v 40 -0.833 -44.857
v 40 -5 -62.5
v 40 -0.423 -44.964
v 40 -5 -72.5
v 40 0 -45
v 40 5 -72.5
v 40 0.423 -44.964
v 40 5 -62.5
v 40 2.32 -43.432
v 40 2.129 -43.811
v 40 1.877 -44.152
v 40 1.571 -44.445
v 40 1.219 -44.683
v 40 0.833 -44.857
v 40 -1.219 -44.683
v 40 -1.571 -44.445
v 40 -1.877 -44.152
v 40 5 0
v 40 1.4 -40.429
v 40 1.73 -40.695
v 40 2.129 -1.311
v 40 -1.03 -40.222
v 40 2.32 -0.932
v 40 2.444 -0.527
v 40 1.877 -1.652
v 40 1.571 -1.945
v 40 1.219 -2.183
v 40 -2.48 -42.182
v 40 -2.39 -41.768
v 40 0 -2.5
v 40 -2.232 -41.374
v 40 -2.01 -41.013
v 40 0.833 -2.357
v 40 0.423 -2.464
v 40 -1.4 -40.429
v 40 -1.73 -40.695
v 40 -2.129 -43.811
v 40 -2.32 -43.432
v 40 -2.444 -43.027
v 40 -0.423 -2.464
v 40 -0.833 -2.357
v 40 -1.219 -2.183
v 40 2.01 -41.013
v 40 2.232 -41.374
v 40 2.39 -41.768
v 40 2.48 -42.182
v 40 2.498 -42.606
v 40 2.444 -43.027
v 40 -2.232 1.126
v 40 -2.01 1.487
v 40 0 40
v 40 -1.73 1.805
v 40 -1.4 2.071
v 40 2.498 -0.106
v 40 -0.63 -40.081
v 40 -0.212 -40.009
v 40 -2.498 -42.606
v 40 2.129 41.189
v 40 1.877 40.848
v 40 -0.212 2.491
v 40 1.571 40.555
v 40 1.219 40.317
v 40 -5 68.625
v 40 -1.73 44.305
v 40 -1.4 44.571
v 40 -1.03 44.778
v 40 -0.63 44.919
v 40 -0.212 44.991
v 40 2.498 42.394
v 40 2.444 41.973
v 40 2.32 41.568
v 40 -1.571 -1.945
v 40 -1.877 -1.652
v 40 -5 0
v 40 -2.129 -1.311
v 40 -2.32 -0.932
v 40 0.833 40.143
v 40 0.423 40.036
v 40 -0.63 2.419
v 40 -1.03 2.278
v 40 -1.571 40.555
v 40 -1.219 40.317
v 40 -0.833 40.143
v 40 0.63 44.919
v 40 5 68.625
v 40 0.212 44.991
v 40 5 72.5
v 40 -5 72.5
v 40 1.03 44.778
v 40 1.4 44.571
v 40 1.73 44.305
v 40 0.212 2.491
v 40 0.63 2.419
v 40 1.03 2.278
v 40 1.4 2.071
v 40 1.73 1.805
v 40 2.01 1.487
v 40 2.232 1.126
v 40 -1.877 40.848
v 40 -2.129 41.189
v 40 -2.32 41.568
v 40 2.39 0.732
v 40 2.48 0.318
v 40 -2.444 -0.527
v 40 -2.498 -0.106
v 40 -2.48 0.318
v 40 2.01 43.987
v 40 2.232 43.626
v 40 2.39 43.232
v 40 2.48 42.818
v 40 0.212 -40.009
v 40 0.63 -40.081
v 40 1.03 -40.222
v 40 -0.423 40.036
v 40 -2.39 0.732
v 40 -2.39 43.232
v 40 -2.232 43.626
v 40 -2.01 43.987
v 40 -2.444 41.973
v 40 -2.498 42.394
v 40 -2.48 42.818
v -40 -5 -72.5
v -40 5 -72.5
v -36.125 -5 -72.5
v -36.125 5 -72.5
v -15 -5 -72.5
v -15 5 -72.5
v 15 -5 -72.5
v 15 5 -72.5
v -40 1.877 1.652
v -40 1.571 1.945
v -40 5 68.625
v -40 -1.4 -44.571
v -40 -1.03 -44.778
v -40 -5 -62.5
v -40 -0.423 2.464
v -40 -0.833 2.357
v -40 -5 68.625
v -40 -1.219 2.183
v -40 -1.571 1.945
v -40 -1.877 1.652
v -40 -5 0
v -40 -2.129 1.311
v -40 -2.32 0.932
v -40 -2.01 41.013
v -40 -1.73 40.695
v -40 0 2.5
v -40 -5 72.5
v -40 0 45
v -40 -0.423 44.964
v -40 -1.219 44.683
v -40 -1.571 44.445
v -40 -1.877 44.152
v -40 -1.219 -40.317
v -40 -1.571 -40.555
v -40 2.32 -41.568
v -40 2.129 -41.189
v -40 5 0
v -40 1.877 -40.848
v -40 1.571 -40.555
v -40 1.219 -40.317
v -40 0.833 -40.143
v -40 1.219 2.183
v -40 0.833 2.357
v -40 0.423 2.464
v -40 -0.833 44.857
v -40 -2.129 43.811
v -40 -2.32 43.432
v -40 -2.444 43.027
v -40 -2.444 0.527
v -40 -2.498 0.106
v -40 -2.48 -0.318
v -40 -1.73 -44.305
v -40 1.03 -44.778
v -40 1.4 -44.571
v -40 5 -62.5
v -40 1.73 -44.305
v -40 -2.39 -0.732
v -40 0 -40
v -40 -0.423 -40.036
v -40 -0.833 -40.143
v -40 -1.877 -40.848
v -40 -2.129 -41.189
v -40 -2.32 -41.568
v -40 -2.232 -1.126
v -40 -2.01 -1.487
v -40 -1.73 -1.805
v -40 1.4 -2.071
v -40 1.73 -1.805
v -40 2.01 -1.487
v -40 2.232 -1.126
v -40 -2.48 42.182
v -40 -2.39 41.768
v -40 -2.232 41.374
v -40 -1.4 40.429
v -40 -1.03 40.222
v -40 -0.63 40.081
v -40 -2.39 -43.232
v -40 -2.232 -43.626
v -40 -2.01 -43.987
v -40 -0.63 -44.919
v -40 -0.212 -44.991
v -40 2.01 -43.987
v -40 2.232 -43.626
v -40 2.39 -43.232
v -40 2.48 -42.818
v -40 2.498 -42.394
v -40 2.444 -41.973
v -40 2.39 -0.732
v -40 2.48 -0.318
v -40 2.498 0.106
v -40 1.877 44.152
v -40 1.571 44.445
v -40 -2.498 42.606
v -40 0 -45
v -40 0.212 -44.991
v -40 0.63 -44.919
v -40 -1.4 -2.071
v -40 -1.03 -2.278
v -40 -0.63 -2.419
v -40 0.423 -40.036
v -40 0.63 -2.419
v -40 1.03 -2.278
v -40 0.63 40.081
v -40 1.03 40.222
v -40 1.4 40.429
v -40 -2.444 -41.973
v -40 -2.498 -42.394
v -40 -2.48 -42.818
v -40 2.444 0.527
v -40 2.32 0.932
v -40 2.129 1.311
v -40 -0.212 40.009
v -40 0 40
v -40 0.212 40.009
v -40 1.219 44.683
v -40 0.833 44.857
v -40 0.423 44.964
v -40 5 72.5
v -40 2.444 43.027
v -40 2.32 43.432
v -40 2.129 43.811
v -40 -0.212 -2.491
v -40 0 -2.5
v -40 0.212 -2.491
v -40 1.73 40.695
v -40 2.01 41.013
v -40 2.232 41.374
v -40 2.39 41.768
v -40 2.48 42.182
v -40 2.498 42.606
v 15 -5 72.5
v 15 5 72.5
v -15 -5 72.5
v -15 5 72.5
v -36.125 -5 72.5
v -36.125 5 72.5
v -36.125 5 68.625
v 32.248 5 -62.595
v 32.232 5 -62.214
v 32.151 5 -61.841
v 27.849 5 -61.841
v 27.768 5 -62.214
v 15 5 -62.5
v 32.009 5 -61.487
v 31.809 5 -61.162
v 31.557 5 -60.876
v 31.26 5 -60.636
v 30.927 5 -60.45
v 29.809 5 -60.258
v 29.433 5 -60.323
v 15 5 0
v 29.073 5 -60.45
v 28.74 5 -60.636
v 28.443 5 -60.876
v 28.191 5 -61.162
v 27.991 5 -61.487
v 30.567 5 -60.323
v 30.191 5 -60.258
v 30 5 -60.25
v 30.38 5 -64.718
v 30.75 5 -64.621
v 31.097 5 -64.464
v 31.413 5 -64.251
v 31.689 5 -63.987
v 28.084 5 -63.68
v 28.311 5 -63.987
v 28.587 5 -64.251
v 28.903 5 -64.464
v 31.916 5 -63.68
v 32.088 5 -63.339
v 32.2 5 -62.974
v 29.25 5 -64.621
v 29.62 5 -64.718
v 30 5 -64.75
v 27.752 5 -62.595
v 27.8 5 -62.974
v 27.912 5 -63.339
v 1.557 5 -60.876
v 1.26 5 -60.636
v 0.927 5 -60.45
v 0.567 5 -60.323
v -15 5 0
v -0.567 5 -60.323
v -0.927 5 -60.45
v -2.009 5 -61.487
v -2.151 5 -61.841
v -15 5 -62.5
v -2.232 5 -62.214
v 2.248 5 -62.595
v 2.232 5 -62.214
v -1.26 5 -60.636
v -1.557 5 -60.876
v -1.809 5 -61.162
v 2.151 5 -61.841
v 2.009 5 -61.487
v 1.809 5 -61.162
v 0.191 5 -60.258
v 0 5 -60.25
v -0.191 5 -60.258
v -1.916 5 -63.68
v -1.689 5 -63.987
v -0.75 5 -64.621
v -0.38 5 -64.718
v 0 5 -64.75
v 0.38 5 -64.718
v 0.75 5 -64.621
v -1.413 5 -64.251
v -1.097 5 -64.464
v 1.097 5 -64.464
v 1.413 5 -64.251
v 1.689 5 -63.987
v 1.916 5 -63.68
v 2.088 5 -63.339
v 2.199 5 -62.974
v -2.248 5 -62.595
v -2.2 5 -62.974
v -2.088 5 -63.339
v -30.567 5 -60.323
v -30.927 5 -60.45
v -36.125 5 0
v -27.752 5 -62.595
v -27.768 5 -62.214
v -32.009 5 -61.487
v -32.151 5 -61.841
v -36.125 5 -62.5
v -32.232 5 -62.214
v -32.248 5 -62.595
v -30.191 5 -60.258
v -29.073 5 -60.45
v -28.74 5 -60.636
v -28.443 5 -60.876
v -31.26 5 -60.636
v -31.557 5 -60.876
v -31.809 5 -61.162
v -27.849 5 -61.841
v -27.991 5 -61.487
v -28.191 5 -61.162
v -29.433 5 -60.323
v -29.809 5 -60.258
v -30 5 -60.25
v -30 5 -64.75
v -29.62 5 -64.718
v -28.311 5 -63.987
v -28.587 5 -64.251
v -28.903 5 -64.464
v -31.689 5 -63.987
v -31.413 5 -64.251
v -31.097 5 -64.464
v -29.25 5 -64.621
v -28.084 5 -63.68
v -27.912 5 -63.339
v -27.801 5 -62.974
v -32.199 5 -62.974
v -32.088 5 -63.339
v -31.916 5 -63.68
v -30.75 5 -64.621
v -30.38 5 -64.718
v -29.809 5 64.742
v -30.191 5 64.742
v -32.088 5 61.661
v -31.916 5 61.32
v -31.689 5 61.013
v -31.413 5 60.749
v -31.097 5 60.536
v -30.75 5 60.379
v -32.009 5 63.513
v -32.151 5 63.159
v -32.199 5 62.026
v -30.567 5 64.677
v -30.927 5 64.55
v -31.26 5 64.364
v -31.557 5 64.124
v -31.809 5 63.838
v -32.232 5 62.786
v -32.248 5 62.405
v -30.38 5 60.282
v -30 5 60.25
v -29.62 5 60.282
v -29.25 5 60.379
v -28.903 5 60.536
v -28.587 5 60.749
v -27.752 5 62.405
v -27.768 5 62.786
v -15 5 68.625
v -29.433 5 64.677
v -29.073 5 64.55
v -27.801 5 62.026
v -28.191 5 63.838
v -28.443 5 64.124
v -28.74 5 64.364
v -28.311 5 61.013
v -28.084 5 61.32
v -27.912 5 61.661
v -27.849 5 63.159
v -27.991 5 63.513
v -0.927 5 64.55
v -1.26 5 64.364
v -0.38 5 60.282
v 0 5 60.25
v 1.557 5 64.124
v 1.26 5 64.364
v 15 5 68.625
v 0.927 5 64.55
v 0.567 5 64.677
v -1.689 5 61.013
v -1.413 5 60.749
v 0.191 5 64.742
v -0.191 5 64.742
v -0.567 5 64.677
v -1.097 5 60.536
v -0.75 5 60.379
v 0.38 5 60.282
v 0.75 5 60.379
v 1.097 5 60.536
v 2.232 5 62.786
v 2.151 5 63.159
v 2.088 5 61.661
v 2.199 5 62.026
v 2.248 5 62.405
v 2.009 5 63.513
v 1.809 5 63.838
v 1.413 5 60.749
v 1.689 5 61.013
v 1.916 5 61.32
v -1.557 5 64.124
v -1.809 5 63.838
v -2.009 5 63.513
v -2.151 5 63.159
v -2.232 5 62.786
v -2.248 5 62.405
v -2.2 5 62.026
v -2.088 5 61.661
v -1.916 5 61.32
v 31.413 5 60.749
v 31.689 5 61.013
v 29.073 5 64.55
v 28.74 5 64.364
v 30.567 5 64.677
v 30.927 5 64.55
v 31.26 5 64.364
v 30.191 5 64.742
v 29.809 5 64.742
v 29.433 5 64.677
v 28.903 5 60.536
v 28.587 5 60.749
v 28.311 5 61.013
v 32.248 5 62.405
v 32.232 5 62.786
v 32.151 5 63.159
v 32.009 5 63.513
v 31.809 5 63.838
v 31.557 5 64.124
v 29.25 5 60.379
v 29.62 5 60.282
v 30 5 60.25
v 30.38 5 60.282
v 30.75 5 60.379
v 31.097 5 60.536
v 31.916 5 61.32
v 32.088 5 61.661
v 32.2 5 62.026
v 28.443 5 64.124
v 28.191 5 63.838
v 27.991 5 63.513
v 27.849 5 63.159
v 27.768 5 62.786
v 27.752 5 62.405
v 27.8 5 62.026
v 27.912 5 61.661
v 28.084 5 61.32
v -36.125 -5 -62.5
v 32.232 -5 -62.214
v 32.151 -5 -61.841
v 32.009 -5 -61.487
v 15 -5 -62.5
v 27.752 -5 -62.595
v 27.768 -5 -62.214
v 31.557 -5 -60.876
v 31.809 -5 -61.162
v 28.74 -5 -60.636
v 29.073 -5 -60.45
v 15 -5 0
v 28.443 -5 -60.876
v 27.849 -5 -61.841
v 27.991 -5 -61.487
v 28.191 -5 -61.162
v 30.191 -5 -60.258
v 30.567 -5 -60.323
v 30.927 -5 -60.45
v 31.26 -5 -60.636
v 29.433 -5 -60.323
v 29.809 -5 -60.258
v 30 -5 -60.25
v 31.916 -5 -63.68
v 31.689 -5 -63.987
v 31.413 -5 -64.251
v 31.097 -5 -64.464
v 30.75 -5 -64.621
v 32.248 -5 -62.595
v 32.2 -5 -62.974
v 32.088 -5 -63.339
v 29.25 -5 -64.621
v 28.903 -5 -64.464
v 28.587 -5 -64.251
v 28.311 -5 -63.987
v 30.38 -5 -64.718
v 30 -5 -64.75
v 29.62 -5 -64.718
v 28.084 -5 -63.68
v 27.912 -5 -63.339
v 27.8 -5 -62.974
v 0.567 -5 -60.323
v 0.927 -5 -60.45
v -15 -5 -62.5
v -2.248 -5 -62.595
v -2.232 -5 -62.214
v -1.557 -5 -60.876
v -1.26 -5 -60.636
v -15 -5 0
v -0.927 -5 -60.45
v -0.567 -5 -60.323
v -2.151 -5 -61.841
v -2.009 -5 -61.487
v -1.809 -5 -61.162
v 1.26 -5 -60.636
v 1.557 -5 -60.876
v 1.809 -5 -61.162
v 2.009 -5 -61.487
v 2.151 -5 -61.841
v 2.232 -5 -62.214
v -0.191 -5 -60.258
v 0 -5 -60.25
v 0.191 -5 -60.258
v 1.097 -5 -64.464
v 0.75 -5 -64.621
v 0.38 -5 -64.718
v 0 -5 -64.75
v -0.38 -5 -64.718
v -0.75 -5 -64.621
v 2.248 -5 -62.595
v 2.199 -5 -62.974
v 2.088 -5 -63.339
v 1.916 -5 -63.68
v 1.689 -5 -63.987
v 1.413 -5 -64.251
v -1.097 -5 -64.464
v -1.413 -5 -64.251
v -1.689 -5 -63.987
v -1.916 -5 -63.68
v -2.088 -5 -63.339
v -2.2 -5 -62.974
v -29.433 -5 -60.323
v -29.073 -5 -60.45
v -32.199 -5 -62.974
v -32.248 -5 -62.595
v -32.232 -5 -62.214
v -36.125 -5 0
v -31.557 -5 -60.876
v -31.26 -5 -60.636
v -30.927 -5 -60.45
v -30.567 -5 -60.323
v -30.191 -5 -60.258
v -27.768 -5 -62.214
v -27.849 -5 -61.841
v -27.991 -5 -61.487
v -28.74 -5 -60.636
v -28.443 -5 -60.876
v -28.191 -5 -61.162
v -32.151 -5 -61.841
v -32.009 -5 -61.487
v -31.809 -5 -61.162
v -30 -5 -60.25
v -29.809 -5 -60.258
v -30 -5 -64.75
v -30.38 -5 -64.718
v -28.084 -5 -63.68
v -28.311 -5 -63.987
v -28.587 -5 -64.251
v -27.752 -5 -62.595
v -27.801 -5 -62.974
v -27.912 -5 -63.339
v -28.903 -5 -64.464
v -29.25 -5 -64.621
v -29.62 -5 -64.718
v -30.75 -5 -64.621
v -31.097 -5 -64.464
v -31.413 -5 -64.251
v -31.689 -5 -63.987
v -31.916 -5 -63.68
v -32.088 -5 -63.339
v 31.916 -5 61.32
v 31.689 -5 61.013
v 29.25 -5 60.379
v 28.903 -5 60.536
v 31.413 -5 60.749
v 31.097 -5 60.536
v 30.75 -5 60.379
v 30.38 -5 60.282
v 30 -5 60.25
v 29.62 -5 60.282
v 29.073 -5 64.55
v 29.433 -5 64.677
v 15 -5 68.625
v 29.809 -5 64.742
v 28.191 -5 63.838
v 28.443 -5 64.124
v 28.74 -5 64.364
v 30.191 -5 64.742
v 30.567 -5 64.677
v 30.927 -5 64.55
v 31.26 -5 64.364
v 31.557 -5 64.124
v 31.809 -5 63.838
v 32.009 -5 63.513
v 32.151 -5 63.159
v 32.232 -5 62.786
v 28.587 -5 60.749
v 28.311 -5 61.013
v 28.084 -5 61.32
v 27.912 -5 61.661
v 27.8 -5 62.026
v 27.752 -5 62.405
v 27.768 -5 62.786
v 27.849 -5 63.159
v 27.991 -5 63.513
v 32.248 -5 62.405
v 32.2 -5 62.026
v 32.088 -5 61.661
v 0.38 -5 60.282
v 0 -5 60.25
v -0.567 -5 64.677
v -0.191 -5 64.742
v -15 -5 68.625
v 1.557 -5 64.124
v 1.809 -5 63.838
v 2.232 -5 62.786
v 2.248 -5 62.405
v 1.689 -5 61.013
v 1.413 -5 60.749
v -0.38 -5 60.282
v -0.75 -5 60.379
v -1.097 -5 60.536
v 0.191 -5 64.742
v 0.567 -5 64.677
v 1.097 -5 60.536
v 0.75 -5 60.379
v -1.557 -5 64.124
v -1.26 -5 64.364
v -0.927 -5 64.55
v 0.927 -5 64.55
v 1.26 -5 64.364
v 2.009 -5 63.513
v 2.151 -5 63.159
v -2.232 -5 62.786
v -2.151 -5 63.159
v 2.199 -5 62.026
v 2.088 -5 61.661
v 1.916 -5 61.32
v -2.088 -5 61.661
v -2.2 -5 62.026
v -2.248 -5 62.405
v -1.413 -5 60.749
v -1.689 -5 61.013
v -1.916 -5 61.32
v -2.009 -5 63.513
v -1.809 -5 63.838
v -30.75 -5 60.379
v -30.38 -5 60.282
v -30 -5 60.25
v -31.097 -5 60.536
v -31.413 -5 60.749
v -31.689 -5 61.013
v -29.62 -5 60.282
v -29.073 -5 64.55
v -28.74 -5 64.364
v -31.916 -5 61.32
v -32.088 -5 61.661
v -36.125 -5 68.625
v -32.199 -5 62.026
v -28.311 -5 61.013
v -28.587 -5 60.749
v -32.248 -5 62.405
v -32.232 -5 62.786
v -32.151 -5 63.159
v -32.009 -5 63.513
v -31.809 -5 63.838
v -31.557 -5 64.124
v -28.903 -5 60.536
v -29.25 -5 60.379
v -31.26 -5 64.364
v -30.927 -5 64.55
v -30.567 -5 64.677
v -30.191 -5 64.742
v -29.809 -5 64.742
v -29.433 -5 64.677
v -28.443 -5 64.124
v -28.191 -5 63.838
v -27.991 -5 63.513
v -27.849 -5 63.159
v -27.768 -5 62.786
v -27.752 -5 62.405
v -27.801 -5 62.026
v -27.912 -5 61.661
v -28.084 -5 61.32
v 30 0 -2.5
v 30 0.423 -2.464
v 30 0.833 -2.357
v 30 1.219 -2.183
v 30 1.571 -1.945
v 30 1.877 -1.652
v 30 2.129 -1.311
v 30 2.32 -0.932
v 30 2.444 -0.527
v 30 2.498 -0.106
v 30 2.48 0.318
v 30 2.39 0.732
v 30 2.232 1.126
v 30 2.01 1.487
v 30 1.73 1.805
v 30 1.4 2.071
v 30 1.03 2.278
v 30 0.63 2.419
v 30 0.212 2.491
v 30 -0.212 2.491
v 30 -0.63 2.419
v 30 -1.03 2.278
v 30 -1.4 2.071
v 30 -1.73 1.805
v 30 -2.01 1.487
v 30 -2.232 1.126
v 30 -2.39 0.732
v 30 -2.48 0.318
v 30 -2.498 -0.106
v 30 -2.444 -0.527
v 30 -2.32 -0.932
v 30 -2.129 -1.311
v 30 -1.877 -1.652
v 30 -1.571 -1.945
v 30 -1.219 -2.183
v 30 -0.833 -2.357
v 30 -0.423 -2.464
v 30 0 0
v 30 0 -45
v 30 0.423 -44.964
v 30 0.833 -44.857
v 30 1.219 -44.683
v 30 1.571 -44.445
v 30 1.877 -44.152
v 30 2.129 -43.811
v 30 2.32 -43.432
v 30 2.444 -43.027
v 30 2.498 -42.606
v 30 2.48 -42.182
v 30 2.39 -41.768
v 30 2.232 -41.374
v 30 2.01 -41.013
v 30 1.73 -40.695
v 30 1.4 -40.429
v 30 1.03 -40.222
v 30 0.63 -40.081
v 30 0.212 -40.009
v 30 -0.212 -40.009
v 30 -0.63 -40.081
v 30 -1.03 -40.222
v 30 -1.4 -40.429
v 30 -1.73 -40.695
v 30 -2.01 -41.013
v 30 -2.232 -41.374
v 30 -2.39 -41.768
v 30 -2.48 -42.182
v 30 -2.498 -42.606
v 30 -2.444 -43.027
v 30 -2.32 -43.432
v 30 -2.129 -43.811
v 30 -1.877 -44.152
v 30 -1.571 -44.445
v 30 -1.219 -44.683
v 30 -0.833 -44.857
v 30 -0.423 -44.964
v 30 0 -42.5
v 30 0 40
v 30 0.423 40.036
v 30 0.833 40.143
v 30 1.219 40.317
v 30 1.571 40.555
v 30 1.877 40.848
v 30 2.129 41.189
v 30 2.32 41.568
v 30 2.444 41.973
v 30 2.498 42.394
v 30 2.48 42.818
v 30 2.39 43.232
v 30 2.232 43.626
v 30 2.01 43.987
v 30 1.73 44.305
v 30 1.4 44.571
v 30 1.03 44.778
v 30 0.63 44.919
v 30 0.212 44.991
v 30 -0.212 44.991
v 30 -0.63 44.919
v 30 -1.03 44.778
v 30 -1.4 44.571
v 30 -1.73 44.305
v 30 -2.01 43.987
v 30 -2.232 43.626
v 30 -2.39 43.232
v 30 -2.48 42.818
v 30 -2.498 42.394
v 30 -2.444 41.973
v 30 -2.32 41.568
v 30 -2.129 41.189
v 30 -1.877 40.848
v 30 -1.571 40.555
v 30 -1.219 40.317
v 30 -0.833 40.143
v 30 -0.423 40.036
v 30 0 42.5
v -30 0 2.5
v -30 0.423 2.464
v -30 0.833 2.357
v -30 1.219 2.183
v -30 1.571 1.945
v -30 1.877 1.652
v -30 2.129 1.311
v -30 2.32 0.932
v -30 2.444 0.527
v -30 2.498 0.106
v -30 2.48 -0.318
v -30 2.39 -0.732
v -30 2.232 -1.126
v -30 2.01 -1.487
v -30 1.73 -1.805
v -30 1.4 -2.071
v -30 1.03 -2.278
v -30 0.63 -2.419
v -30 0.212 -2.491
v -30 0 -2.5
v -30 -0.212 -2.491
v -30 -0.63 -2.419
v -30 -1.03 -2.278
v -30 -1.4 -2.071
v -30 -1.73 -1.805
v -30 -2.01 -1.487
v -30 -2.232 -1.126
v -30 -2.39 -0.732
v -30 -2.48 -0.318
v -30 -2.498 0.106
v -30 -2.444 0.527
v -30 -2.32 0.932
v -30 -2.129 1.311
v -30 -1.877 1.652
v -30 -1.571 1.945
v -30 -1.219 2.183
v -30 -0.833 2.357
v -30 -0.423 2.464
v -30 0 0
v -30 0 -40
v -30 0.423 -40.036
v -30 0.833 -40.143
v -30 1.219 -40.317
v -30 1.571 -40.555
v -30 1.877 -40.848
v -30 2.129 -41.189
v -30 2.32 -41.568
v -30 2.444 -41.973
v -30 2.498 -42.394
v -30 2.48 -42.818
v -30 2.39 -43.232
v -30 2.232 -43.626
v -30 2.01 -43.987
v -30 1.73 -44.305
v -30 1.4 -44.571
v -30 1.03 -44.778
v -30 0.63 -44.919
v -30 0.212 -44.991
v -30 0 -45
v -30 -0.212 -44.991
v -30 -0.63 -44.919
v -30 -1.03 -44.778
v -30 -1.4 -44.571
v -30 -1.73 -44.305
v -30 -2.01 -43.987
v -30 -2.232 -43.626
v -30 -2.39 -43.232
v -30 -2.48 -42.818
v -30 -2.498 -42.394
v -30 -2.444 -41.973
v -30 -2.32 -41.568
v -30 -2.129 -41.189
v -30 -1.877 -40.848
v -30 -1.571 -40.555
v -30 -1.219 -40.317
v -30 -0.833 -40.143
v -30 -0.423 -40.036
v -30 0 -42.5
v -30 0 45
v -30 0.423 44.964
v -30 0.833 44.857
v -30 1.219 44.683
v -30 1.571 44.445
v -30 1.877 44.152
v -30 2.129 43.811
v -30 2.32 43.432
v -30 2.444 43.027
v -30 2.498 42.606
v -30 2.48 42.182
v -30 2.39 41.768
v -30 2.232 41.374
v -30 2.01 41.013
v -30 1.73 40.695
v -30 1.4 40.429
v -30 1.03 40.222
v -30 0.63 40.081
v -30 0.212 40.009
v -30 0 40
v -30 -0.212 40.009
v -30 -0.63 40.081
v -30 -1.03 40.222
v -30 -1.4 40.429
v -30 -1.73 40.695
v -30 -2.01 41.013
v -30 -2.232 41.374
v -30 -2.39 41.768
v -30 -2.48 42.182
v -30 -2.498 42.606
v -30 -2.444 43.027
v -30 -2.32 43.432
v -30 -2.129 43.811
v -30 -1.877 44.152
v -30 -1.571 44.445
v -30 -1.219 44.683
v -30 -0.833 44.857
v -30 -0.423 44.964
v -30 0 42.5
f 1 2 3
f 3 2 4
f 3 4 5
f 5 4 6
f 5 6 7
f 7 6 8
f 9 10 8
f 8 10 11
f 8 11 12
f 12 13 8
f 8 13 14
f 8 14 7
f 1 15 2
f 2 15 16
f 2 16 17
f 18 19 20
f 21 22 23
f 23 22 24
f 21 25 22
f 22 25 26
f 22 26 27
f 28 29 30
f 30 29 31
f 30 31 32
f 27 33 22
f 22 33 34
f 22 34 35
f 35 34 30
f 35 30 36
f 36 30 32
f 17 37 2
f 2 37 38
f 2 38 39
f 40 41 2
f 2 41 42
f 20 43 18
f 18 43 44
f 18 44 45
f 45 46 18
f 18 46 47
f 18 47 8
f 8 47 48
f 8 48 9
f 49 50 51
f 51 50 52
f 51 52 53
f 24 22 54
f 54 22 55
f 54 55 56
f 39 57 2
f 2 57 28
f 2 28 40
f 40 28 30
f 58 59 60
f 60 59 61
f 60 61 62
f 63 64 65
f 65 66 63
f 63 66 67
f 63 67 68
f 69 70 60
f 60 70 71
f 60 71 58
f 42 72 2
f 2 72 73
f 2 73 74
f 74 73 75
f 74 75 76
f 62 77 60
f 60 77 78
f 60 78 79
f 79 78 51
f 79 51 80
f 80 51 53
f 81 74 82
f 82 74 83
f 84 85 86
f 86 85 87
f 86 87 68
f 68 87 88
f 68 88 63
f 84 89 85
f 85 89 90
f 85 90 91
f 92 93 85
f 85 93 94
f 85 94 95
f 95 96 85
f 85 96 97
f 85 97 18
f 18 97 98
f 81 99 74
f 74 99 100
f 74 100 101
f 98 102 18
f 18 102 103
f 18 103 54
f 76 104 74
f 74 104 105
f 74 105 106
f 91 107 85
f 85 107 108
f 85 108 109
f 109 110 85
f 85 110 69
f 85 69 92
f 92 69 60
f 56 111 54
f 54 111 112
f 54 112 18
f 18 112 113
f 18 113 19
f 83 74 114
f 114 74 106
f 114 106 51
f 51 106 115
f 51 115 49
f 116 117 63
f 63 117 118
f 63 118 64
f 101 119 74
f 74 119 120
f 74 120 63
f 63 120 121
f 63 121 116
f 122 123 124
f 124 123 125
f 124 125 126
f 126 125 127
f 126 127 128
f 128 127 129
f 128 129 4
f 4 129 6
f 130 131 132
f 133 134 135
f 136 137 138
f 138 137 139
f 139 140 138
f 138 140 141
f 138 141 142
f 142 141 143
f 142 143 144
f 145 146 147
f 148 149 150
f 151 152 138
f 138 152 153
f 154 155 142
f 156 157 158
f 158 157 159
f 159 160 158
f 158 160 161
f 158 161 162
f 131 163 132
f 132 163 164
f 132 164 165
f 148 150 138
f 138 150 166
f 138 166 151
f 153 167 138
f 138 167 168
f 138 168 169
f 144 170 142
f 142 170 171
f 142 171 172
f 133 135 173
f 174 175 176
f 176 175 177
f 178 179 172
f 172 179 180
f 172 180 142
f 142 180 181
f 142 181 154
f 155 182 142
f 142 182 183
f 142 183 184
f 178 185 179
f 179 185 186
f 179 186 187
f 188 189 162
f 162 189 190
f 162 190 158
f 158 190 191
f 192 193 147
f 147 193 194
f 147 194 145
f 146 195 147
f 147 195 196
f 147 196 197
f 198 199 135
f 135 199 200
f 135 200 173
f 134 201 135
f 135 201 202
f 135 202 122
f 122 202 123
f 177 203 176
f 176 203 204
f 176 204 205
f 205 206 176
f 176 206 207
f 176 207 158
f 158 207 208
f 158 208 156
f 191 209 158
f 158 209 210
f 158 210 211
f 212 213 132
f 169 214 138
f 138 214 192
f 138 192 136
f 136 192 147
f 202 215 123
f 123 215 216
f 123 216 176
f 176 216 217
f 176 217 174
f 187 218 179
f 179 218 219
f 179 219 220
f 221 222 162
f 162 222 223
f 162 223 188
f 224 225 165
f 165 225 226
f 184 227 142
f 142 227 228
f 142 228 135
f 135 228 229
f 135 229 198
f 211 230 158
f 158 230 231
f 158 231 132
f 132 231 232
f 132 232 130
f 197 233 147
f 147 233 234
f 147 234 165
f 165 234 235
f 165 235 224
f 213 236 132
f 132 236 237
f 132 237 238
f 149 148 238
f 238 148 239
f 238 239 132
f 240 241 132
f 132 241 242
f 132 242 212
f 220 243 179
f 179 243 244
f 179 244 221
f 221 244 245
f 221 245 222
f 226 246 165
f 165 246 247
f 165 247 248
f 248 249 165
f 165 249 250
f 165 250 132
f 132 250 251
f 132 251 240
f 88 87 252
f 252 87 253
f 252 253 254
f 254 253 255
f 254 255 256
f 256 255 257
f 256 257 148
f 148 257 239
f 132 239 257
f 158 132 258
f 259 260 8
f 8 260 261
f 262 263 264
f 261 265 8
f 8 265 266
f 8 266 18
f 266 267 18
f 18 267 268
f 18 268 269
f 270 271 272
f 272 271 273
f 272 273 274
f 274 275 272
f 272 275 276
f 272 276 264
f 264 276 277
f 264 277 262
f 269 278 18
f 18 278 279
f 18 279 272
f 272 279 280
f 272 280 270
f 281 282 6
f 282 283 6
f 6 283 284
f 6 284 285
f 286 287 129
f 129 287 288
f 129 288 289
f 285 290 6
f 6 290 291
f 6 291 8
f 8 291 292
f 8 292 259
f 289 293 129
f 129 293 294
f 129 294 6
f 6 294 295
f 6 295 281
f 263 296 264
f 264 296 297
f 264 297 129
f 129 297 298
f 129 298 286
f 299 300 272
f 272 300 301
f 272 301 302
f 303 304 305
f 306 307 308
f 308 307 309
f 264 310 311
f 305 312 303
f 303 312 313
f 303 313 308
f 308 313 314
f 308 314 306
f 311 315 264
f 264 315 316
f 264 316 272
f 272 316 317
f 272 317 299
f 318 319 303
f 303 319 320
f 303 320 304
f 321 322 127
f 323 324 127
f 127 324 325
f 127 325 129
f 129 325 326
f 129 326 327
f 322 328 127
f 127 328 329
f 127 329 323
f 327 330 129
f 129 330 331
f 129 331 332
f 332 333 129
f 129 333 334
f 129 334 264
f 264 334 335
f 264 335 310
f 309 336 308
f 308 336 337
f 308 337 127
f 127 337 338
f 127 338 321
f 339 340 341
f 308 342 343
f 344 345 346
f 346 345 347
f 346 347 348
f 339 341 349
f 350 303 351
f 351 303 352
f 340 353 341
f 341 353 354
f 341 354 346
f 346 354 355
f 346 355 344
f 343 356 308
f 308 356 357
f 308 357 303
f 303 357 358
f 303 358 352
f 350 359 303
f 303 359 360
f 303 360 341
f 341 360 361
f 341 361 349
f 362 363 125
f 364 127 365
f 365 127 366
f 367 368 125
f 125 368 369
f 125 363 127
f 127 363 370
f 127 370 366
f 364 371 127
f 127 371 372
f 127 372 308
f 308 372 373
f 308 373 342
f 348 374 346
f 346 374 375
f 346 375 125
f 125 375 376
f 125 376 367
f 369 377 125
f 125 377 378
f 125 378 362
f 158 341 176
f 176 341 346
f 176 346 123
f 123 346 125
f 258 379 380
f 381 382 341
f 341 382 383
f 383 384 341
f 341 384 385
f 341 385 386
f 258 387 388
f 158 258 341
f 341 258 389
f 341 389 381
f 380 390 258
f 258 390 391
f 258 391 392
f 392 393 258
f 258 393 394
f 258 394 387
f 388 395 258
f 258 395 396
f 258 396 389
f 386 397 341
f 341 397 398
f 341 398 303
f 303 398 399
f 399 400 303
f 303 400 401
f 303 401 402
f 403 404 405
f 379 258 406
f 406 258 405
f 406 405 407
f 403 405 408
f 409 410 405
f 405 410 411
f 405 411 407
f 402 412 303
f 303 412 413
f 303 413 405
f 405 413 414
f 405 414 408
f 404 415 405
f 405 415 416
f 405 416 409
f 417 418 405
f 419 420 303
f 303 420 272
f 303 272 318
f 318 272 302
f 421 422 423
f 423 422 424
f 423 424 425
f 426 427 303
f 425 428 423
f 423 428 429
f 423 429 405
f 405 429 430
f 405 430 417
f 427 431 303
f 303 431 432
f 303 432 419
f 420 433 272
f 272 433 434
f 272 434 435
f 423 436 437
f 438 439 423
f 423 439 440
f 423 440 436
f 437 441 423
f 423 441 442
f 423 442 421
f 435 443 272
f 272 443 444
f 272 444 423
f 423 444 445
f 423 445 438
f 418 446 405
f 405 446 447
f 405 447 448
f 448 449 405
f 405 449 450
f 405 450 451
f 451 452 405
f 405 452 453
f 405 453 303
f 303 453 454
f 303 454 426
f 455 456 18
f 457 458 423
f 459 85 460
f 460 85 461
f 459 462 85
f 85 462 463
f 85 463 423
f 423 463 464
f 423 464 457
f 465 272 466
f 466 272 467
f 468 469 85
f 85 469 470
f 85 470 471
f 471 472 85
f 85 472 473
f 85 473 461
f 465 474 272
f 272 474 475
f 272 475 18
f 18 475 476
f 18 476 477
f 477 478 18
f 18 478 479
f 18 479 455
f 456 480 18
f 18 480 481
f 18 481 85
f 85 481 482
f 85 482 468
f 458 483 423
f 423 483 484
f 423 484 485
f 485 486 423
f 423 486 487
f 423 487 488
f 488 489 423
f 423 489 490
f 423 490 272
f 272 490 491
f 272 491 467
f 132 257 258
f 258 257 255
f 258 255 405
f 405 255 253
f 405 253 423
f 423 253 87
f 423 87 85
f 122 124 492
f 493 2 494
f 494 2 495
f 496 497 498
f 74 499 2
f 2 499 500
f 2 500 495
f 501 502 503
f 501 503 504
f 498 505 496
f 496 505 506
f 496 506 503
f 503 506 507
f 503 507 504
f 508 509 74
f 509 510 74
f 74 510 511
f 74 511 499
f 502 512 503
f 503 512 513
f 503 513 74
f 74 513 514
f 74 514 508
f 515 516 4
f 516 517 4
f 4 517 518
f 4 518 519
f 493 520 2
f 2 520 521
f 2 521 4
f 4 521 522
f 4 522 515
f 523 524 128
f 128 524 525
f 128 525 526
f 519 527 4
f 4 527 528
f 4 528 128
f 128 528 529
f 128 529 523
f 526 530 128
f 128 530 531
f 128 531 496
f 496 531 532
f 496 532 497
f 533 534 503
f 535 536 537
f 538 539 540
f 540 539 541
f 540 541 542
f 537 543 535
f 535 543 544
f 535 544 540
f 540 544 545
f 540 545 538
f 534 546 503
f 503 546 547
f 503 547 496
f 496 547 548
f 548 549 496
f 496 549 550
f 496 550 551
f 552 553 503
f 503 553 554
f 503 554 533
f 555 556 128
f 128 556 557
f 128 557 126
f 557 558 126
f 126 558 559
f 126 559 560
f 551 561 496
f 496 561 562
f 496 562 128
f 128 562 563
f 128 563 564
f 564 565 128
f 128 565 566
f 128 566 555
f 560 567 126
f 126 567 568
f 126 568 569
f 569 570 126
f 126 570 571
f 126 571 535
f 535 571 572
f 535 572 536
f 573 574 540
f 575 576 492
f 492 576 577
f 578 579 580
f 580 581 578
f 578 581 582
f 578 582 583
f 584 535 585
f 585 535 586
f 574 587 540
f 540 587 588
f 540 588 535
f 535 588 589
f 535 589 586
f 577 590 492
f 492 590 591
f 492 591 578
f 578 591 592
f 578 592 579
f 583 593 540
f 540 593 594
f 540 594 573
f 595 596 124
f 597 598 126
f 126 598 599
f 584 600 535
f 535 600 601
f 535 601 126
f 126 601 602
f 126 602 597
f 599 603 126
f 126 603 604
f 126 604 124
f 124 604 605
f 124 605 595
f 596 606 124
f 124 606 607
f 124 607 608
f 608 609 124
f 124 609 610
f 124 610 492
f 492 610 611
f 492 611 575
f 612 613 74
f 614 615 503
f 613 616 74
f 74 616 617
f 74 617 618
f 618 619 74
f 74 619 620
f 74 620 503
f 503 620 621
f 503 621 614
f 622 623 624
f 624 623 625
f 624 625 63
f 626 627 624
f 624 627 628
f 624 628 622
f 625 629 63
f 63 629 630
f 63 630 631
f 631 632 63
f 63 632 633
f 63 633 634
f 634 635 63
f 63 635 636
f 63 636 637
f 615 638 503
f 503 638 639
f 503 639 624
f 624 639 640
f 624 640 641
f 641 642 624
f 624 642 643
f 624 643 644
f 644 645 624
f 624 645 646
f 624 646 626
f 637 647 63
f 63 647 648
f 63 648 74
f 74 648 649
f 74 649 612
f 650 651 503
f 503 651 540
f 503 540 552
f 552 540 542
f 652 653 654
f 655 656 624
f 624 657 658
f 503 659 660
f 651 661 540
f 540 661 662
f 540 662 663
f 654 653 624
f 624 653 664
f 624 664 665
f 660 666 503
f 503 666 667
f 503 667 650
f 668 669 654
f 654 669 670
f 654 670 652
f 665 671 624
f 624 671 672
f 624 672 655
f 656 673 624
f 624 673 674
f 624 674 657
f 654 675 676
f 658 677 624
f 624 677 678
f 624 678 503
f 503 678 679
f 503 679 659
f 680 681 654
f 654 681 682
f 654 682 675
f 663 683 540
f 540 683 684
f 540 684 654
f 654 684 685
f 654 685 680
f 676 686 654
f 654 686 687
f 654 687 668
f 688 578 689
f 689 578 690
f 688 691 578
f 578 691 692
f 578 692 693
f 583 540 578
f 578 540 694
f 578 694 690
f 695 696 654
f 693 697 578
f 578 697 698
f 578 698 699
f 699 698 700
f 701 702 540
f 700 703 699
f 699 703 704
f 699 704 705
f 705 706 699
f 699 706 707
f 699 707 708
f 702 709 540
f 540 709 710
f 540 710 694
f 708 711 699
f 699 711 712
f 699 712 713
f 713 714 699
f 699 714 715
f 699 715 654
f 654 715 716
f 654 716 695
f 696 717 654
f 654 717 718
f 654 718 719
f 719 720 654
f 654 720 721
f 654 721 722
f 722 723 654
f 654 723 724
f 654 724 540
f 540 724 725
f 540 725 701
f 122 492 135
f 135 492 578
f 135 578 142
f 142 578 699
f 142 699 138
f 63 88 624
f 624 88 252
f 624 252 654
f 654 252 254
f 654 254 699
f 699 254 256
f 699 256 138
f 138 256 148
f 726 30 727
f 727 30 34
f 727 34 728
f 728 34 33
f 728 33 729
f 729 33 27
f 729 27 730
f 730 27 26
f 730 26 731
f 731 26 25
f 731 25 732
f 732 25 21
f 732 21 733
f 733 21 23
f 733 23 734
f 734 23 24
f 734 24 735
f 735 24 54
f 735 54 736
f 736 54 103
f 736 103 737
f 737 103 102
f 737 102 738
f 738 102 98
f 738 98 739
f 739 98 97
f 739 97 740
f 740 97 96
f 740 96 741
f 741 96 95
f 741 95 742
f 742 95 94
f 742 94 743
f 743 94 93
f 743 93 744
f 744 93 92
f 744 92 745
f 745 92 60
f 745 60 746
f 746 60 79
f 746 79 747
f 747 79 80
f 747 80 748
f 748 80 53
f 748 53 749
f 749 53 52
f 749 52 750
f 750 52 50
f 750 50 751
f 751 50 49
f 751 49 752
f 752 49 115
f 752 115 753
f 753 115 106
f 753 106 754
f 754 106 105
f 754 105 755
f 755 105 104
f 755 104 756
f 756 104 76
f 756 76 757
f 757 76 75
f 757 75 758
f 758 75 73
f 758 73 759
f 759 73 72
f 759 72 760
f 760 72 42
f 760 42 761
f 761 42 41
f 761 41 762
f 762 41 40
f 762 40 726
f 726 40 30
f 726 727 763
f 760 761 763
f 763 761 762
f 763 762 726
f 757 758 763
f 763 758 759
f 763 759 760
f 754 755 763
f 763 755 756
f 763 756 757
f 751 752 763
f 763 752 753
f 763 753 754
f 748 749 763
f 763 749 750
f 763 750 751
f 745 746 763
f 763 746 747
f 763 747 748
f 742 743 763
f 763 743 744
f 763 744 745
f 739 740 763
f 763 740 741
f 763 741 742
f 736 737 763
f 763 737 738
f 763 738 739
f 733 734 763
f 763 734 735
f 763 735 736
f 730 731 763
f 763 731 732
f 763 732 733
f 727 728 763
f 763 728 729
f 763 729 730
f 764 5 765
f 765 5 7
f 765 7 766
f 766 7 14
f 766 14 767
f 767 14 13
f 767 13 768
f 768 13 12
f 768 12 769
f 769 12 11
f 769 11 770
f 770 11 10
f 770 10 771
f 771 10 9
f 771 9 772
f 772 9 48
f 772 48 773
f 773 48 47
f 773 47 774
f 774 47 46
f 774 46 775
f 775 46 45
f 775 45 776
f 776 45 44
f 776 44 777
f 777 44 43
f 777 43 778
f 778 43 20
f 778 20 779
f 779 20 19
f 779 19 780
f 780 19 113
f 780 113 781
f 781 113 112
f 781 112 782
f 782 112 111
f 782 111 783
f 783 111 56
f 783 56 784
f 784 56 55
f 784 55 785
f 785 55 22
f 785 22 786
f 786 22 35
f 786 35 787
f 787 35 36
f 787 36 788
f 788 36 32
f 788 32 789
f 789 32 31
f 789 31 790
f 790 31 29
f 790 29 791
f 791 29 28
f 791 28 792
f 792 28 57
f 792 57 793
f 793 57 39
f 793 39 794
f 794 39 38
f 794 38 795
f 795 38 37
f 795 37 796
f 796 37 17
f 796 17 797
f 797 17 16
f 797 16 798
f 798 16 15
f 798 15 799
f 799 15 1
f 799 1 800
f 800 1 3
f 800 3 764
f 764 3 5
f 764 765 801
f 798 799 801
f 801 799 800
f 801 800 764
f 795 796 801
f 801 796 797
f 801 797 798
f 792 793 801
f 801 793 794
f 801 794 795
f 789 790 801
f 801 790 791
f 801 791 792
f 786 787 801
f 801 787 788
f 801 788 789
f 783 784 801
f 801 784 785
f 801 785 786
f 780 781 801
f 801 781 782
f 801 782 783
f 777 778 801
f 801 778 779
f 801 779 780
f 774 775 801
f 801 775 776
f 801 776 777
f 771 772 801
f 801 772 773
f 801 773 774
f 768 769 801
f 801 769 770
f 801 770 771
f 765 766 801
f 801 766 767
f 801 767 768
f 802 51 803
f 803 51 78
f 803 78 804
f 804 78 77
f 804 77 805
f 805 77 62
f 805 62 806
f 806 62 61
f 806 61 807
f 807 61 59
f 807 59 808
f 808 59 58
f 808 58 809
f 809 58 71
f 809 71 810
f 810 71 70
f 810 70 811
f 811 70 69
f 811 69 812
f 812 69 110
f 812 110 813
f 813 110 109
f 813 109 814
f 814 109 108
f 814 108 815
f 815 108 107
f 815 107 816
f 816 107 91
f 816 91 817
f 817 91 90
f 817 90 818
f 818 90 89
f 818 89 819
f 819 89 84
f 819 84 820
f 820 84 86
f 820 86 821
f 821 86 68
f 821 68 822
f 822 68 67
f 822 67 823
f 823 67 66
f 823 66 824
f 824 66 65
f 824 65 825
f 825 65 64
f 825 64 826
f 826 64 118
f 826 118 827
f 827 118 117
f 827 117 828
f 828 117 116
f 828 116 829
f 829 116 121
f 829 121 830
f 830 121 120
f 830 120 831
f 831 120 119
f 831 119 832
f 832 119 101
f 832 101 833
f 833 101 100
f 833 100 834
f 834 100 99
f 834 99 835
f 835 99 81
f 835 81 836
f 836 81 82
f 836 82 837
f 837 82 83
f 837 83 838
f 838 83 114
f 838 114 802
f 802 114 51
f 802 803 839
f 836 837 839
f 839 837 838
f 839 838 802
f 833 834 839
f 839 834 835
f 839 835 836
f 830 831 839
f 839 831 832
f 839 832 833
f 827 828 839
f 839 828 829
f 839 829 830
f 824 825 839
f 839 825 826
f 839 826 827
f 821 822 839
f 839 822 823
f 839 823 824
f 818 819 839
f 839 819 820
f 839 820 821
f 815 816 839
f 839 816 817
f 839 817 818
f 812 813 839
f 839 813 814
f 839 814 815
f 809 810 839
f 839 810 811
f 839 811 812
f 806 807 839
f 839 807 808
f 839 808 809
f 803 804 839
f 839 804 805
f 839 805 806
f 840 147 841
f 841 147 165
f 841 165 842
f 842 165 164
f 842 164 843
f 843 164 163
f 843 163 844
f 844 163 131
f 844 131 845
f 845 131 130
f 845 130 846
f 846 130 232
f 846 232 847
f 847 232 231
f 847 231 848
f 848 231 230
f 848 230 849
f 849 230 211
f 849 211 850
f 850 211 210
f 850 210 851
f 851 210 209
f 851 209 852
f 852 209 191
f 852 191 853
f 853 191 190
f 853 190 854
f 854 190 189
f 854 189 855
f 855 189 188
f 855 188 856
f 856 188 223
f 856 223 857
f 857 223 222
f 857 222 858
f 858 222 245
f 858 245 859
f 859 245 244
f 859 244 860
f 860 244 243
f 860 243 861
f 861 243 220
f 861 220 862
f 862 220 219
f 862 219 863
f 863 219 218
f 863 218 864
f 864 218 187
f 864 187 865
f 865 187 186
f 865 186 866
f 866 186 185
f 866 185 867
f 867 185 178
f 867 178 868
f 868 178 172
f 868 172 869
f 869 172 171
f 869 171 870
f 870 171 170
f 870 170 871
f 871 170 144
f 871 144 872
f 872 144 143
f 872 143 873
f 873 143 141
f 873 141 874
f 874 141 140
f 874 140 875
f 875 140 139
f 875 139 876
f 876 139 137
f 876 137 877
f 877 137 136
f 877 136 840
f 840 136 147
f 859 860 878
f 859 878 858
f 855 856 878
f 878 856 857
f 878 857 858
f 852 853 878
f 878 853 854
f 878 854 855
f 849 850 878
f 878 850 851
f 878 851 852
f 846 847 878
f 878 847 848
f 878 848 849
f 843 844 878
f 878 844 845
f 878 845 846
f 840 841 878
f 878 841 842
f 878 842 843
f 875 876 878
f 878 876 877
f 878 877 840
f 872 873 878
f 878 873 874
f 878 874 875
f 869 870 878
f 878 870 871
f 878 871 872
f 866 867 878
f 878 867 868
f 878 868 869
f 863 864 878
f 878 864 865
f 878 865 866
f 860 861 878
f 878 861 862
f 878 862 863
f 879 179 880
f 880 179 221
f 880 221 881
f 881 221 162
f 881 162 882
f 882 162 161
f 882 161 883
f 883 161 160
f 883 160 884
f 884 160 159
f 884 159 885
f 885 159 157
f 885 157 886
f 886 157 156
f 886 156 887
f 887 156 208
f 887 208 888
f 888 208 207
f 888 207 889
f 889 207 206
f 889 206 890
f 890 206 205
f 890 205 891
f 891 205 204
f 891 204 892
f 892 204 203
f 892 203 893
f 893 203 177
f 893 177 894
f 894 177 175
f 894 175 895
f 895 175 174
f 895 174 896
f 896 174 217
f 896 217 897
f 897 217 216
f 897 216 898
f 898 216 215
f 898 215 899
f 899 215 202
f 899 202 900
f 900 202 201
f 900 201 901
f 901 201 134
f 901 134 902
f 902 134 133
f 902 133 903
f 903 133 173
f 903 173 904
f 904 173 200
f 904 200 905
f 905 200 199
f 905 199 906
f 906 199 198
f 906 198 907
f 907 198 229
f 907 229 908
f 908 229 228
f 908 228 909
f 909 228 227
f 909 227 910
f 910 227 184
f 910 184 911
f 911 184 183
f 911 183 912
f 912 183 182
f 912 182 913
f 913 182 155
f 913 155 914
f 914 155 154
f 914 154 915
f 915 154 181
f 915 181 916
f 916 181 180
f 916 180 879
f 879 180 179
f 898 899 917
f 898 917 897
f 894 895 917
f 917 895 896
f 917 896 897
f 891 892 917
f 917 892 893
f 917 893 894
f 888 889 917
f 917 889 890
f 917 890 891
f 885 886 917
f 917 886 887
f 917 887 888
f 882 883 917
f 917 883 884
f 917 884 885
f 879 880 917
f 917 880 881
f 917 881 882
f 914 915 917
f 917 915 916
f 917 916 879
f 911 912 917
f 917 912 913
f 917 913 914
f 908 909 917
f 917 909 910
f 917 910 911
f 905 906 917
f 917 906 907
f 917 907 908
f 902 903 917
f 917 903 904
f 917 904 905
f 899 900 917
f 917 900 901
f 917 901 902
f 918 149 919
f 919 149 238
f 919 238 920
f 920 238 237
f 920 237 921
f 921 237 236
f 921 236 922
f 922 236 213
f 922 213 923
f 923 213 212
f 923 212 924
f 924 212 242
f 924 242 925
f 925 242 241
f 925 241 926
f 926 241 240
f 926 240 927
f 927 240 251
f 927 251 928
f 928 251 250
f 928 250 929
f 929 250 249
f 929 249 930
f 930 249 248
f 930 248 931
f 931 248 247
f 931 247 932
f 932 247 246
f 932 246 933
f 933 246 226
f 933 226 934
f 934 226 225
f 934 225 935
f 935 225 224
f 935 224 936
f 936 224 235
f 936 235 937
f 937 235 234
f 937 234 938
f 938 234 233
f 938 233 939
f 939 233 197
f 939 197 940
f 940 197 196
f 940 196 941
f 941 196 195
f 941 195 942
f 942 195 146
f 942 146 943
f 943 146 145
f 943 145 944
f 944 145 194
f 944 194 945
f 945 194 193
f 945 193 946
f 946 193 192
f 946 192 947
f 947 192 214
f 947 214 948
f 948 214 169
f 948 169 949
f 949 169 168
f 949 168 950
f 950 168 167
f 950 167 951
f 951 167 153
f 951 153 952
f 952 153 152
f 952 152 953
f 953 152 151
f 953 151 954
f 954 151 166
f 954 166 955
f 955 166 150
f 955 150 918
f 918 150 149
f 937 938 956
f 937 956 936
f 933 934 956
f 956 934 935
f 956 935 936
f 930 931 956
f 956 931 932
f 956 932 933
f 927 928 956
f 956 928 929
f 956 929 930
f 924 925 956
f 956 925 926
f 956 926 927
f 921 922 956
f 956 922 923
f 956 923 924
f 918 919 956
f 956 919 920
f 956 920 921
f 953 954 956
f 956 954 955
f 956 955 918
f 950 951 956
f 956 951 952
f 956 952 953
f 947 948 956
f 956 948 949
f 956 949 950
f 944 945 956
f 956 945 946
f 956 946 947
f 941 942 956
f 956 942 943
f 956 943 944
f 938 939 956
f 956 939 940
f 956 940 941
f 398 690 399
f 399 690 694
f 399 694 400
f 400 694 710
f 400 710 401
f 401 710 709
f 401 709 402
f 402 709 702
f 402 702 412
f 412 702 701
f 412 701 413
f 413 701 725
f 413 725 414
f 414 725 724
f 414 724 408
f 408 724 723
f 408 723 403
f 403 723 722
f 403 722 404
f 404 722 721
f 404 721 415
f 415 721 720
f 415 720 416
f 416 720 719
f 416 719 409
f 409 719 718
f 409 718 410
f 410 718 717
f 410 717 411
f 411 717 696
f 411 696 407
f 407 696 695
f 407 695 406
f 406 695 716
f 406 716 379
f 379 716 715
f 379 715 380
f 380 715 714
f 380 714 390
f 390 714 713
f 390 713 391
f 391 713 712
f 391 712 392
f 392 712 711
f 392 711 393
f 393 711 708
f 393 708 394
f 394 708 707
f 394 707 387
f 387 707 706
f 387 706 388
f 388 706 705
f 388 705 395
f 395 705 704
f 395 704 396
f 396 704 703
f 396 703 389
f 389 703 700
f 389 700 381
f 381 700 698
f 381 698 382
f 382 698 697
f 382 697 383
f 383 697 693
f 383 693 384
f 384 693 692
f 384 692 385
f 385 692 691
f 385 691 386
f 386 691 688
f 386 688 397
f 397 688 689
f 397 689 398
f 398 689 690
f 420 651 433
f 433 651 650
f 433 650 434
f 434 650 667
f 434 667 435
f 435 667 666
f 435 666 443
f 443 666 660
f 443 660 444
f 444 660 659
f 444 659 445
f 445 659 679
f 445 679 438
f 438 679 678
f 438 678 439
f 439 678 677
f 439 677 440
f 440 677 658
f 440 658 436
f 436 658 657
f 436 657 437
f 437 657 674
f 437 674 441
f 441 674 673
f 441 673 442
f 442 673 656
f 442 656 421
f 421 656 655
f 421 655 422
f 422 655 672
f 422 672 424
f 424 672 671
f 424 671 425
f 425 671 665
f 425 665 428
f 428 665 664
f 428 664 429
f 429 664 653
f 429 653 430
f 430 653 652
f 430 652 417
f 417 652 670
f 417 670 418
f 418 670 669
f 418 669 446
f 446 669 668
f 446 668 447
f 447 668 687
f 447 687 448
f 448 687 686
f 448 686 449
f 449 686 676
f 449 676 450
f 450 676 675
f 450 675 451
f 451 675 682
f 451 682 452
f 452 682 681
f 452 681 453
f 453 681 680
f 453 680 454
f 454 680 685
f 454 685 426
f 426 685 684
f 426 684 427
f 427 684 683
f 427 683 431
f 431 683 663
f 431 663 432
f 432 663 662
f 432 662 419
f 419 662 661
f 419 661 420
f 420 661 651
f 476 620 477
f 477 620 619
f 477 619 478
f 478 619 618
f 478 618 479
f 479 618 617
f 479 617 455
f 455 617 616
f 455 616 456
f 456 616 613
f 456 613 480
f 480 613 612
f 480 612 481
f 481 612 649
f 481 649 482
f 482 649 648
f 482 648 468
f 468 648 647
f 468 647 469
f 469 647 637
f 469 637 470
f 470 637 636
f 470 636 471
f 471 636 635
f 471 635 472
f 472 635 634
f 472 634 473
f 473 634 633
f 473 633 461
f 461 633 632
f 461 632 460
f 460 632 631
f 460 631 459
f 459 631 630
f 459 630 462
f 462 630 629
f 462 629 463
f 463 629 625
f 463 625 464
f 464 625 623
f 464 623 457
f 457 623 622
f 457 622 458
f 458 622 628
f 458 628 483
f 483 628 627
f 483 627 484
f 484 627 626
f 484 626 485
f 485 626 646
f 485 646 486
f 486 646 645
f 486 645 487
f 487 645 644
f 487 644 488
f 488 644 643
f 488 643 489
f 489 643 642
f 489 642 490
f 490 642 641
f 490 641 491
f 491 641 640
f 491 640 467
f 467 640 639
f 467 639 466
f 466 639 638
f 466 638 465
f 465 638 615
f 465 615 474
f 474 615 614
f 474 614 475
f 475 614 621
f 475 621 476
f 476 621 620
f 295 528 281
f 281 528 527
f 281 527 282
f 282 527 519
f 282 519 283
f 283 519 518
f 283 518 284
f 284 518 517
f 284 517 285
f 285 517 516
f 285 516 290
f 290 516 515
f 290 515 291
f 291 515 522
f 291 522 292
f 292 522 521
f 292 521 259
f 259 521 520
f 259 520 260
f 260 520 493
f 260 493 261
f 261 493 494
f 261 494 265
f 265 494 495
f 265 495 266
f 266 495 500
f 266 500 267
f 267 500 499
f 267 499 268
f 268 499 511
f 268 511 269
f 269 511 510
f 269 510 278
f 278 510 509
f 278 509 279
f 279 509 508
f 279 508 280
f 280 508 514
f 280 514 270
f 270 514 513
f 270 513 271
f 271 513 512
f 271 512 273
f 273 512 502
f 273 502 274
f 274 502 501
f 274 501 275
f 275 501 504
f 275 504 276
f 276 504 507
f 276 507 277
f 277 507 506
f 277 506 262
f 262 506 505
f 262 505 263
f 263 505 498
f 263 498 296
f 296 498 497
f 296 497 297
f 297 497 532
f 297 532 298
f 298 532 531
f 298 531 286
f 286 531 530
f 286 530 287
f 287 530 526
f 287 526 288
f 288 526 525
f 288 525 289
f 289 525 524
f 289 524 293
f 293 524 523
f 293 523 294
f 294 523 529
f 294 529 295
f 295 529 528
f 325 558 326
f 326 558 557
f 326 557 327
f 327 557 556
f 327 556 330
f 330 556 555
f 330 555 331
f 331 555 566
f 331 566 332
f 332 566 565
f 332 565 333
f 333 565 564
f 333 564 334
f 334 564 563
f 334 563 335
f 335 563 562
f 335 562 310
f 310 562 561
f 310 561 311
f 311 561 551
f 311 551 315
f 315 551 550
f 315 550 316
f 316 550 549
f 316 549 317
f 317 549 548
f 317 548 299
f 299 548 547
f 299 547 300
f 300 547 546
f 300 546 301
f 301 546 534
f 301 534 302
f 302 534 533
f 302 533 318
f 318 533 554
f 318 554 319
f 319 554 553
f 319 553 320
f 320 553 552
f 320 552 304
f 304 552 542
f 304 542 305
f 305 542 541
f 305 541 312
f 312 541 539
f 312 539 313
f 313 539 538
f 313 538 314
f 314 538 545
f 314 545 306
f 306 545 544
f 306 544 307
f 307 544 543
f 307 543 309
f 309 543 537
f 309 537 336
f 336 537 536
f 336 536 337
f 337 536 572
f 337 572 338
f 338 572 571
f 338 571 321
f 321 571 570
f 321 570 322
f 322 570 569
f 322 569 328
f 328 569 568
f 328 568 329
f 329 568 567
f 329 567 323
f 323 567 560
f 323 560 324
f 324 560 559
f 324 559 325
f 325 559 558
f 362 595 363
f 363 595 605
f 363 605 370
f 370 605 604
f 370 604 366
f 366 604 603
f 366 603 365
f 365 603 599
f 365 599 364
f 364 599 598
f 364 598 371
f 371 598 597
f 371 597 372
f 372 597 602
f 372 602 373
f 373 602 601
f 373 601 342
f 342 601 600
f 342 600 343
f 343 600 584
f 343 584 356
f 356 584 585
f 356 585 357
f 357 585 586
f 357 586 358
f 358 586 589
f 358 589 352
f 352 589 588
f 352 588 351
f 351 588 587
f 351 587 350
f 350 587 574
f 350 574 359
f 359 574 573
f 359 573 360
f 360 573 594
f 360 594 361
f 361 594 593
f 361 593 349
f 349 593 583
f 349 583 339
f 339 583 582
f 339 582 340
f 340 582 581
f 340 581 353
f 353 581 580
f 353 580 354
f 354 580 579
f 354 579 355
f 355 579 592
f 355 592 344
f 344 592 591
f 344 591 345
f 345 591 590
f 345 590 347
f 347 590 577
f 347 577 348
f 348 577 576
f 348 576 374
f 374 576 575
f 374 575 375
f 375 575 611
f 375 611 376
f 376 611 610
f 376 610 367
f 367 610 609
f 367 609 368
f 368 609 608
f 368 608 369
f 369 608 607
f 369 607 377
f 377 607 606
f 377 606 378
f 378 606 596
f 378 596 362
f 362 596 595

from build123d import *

# Parameters (mm, degrees)
CROQUIS1_W              = 80
CROQUIS1_H              = 145
SALIENTE_EXTRUIR1_DEPTH = 5
CROQUIS2_R              = 2.5
CORTAR_EXTRUIR1_DEPTH   = 10
CROQUIS3_R              = 2.25
CORTAR_EXTRUIR2_DEPTH   = 84.404136588


with BuildPart() as part:
    # Croquis1 → Saliente-Extruir1 (new, symmetric)
    with BuildSketch(Plane(origin=(0, 0, 0), x_dir=(1, 0, 0), z_dir=(0, 1, 0))):
        Rectangle(CROQUIS1_W, CROQUIS1_H)
    extrude(amount=SALIENTE_EXTRUIR1_DEPTH, both=True)

    # Croquis2 → Cortar-Extruir1 (cut)
    with BuildSketch(Plane(origin=(40, 0, 0), x_dir=(0, 0, -1), z_dir=(1, 0, 0))):
        Circle(CROQUIS2_R)
        with Locations((42.5, 0)):
            Circle(CROQUIS2_R)
        with Locations((-42.5, 0)):
            Circle(CROQUIS2_R)
    cortar_extruir1 = extrude(amount=-CORTAR_EXTRUIR1_DEPTH, mode=Mode.SUBTRACT)

    # Simetría1: Cortar-Extruir1 across plane
    add(cortar_extruir1.mirror(Plane(origin=(0, 0, 0), x_dir=(0, 0, 1), z_dir=(1, 0, 0))), mode=Mode.SUBTRACT)

    # Croquis3 → Cortar-Extruir2 (cut, through all)
    with BuildSketch(Plane.XZ.offset(5)):
        with Locations(Location((-30, 62.5, 0), (0, 0, 270))):
            Circle(CROQUIS3_R)
        with Locations(Location((0, 62.5, 0), (0, 0, 270))):
            Circle(CROQUIS3_R)
        with Locations(Location((30, 62.5, 0), (0, 0, 270))):
            Circle(CROQUIS3_R)
        with Locations(Location((30, -62.5, 0), (0, 0, 90))):
            Circle(CROQUIS3_R)
        with Locations(Location((0, -62.5, 0), (0, 0, 90))):
            Circle(CROQUIS3_R)
        with Locations(Location((-30, -62.5, 0), (0, 0, 90))):
            Circle(CROQUIS3_R)
    extrude(amount=-CORTAR_EXTRUIR2_DEPTH, mode=Mode.SUBTRACT)


solid = part.part
